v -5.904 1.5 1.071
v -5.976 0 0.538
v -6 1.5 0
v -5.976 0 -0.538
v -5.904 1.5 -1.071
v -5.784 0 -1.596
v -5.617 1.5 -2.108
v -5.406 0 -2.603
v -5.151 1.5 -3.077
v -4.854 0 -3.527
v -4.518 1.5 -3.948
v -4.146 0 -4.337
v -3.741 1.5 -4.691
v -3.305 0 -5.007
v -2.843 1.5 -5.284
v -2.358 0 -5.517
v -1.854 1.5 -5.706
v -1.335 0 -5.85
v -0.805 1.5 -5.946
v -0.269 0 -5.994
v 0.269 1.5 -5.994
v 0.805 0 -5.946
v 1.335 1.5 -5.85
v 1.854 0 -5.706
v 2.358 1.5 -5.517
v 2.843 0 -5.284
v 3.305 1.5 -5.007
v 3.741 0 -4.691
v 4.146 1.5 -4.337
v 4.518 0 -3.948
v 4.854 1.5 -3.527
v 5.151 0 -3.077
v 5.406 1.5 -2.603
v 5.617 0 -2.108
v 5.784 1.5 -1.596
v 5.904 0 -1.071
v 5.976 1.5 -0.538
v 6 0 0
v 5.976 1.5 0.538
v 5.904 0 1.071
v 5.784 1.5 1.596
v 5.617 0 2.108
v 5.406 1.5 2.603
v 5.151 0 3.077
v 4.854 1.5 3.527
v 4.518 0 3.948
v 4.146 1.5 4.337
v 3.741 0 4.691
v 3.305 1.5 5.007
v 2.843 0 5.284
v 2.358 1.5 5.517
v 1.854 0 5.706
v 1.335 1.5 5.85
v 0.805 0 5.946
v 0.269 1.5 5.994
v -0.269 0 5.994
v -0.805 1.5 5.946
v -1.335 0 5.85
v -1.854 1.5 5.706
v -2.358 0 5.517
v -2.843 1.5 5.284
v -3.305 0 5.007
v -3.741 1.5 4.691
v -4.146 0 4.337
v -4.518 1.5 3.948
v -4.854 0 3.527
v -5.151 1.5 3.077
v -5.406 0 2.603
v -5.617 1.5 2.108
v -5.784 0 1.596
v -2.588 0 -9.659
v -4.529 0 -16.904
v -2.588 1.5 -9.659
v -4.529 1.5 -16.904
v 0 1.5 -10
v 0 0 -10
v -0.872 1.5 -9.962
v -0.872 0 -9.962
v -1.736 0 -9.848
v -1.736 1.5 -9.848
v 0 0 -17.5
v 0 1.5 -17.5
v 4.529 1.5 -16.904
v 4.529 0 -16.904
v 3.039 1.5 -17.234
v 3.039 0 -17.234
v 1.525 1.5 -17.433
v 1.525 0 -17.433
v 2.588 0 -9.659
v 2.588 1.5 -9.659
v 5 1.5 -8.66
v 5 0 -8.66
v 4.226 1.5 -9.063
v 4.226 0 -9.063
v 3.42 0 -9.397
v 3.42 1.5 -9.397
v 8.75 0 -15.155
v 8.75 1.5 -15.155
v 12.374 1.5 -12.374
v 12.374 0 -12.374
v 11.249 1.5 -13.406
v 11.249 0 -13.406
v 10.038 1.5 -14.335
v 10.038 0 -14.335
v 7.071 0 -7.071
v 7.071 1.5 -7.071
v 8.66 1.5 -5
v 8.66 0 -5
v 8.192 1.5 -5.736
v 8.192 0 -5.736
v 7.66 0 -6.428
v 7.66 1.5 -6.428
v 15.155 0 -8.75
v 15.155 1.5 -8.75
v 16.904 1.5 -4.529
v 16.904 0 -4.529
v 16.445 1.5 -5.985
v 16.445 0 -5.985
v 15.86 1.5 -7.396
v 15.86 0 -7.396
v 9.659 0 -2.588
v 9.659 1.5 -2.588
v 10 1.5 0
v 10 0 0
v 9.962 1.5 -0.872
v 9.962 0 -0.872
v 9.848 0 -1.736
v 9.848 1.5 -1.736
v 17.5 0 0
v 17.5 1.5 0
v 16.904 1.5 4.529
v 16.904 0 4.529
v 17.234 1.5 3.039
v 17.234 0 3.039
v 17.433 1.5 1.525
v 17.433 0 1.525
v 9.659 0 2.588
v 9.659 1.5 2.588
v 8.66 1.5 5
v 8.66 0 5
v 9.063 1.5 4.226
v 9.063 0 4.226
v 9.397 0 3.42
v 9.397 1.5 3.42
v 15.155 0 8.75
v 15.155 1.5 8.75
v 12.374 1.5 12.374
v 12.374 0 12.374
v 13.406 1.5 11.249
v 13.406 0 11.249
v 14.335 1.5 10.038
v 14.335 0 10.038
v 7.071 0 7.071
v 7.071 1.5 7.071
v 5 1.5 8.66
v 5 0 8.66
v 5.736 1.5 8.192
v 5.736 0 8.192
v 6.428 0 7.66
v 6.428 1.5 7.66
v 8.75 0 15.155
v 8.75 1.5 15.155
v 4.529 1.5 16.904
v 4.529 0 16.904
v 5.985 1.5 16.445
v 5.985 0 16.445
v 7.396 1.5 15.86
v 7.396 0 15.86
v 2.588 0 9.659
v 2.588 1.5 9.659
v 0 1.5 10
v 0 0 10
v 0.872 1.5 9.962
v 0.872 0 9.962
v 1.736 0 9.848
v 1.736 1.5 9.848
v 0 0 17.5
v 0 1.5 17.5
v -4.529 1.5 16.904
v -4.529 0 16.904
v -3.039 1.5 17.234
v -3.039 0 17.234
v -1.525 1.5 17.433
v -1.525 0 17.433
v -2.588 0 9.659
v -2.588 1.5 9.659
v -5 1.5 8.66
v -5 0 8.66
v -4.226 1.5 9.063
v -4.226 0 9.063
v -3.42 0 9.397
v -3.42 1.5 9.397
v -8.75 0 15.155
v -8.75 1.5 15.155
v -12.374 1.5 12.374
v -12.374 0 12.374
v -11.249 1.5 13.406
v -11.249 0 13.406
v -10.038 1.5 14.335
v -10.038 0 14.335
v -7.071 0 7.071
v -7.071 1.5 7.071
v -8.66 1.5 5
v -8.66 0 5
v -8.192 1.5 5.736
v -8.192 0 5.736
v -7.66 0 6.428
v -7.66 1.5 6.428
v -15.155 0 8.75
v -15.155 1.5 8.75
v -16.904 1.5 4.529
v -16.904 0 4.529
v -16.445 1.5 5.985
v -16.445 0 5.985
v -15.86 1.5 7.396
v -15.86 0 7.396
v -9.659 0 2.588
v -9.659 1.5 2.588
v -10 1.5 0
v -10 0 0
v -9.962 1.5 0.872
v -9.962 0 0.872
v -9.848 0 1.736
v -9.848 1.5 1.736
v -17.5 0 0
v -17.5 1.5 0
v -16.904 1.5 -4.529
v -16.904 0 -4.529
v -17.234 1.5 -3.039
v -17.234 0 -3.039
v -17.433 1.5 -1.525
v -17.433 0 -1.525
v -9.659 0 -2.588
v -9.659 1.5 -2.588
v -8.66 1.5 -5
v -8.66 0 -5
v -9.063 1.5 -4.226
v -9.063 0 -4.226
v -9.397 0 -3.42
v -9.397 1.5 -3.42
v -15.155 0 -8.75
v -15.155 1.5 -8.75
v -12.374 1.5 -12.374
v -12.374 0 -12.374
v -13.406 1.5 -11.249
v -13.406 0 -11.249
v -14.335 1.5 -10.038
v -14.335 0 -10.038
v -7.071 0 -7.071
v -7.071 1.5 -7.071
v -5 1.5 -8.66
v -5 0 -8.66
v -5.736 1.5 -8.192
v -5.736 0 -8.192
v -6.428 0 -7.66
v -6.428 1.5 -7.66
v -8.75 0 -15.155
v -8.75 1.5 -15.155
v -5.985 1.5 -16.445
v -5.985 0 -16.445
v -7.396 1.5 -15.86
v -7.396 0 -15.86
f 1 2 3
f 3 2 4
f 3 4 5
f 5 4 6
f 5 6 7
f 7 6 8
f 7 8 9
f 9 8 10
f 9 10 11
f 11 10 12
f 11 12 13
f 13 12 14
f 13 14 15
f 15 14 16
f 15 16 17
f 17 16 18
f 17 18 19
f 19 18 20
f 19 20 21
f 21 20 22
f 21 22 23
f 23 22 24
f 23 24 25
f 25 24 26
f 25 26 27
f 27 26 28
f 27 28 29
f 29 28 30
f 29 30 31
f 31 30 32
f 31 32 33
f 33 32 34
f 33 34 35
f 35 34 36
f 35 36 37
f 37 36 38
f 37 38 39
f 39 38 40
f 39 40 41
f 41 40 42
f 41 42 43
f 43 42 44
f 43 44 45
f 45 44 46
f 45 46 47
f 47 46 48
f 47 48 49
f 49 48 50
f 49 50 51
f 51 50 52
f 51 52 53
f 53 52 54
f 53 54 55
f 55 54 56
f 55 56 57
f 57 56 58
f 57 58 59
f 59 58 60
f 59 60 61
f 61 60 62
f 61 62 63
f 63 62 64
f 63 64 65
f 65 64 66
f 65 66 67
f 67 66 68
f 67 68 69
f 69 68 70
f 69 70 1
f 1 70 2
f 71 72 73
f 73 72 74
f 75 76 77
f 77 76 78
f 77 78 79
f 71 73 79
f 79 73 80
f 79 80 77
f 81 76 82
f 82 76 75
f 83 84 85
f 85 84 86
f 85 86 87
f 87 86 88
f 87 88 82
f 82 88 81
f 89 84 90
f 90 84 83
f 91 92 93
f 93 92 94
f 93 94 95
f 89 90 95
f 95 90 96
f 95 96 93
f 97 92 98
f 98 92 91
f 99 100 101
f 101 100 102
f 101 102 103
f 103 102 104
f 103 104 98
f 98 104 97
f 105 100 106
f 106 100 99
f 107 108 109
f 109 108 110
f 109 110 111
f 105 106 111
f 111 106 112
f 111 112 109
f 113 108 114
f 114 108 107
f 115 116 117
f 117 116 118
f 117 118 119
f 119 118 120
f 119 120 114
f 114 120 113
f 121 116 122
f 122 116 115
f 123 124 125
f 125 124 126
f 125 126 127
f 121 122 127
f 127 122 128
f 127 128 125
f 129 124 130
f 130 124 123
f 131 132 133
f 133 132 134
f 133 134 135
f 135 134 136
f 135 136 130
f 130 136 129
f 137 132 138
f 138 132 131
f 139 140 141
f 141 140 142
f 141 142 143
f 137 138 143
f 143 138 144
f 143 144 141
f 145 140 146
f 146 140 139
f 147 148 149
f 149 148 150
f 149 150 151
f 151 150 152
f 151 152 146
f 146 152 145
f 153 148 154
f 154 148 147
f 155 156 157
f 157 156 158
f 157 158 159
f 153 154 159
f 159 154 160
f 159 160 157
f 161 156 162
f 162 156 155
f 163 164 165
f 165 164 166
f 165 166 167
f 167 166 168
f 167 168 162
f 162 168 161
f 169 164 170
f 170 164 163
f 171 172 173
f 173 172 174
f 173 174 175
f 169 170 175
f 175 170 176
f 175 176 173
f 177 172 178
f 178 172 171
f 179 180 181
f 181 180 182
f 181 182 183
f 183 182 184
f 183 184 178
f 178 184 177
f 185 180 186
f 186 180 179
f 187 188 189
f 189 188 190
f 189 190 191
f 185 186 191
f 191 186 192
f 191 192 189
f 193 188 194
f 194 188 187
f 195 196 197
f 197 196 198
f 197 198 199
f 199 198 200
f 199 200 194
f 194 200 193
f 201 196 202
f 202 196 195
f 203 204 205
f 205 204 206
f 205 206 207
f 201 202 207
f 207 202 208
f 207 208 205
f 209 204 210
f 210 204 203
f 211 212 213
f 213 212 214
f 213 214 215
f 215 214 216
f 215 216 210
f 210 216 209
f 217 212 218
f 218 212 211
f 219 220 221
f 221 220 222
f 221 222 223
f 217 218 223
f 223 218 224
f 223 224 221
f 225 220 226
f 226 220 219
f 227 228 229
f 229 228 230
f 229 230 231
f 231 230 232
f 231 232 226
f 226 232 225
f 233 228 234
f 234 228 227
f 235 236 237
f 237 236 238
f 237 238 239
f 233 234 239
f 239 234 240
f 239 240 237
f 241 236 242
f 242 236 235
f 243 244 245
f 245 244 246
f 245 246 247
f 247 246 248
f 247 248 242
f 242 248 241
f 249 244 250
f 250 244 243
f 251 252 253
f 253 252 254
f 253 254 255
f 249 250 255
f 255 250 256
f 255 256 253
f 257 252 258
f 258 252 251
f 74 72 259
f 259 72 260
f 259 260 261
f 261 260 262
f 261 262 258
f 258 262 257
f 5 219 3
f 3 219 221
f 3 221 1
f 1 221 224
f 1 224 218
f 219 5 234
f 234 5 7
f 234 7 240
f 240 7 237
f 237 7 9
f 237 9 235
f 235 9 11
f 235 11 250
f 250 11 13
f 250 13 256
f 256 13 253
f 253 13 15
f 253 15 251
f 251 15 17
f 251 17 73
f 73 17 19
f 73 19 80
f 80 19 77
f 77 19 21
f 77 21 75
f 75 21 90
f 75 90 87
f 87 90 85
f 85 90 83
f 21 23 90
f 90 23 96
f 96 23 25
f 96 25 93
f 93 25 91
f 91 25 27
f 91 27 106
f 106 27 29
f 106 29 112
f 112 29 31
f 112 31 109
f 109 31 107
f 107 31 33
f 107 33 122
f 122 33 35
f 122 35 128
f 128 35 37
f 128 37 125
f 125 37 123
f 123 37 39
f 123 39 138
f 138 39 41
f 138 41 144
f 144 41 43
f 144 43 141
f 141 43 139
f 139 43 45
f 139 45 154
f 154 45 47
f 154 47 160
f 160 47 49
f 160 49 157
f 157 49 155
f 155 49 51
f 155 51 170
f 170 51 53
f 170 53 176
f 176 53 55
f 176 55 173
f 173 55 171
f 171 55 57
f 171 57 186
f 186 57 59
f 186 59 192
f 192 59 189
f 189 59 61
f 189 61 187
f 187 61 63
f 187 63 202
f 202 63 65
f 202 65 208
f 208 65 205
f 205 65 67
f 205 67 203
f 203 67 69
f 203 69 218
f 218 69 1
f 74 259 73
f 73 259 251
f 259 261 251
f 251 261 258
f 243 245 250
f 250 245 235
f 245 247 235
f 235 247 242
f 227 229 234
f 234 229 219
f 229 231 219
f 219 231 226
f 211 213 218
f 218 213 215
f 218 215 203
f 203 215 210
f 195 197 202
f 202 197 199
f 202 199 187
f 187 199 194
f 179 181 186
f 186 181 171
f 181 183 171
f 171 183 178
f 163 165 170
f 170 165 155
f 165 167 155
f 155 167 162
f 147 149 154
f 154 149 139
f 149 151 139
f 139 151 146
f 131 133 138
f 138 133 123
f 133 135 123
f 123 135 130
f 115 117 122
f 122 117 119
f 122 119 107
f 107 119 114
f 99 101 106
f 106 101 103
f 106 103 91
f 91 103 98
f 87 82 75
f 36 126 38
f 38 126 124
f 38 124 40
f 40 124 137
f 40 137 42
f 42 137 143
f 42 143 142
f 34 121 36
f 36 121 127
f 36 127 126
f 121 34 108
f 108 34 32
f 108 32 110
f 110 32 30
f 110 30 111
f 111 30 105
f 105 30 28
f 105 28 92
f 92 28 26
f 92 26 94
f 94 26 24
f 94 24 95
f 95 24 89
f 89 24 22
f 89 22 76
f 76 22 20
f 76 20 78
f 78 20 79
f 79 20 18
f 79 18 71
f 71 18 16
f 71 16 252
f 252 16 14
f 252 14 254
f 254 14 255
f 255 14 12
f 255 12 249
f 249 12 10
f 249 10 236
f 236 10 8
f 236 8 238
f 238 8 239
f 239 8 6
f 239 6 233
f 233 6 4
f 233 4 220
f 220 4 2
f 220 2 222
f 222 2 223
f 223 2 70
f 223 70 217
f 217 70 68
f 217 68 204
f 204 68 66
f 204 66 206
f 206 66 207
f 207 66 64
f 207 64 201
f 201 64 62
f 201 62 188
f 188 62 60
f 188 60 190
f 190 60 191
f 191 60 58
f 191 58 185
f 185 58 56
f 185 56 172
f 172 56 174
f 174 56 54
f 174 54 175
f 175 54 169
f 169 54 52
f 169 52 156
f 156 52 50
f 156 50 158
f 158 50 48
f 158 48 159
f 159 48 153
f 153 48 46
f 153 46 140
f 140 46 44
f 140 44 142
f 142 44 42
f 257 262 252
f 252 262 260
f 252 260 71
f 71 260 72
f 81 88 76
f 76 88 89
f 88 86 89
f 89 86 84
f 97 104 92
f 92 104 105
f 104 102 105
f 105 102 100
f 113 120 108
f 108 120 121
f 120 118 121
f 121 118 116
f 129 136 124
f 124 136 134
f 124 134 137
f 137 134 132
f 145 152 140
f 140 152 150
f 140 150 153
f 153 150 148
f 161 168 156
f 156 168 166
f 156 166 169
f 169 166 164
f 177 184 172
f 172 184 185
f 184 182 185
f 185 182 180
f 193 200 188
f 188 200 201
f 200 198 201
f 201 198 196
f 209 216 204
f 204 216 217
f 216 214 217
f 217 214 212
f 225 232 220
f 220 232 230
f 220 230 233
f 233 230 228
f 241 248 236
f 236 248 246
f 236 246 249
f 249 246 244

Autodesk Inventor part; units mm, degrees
ref_plane "YZ Plane" through (0, 0, 0) normal (1, 0, 0) x (0, 1, 0)
ref_plane "XZ Plane" through (0, 0, 0) normal (0, 1, 0) x (-1, 0, 0)
ref_plane "XY Plane" through (0, 0, 0) normal (0, 0, 1) x (1, 0, 0)
sketch "Boceto1" plane through (0, 0, 0) normal (0, 1, 0) x (-1, 0, 0)
  line L0 (0, -10) -> (0, -17.5)
  arc A0 (0, -10) -> (2.5882, -9.6593) centre (0, 0) ccw
  line L1 (2.5882, -9.6593) -> (4.5293, -16.9037)
  line L2 (5, -8.6603) -> (8.75, -15.1554)
  arc A1 (5, -8.6603) -> (7.0711, -7.0711) centre (0, 0) ccw
  line L3 (7.0711, -7.0711) -> (12.3744, -12.3744)
  line L4 (8.6603, -5) -> (15.1554, -8.75)
  arc A2 (8.6603, -5) -> (9.6593, -2.5882) centre (0, 0) ccw
  line L5 (9.6593, -2.5882) -> (16.9037, -4.5293)
  line L6 (10, 0) -> (17.5, 0)
  arc A3 (10, 0) -> (9.6593, 2.5882) centre (0, 0) ccw
  line L7 (9.6593, 2.5882) -> (16.9037, 4.5293)
  line L8 (8.6603, 5) -> (15.1554, 8.75)
  arc A4 (8.6603, 5) -> (7.0711, 7.0711) centre (0, 0) ccw
  line L9 (7.0711, 7.0711) -> (12.3744, 12.3744)
  line L10 (5, 8.6603) -> (8.75, 15.1554)
  arc A5 (5, 8.6603) -> (2.5882, 9.6593) centre (0, 0) ccw
  line L11 (2.5882, 9.6593) -> (4.5293, 16.9037)
  line L12 (0, 10) -> (0, 17.5)
  arc A6 (0, 10) -> (-2.5882, 9.6593) centre (0, 0) ccw
  line L13 (-2.5882, 9.6593) -> (-4.5293, 16.9037)
  line L14 (-5, 8.6603) -> (-8.75, 15.1554)
  arc A7 (-5, 8.6603) -> (-7.0711, 7.0711) centre (0, 0) ccw
  line L15 (-7.0711, 7.0711) -> (-12.3744, 12.3744)
  line L16 (-8.6603, 5) -> (-15.1554, 8.75)
  arc A8 (-8.6603, 5) -> (-9.6593, 2.5882) centre (0, 0) ccw
  line L17 (-9.6593, 2.5882) -> (-16.9037, 4.5293)
  line L18 (-10, 0) -> (-17.5, 0)
  arc A9 (-10, 0) -> (-9.6593, -2.5882) centre (0, 0) ccw
  line L19 (-9.6593, -2.5882) -> (-16.9037, -4.5293)
  line L20 (-8.6603, -5) -> (-15.1554, -8.75)
  arc A10 (-8.6603, -5) -> (-7.0711, -7.0711) centre (0, 0) ccw
  line L21 (-7.0711, -7.0711) -> (-12.3744, -12.3744)
  line L22 (-5, -8.6603) -> (-8.75, -15.1554)
  arc A11 (-5, -8.6603) -> (-2.5882, -9.6593) centre (0, 0) ccw
  line L23 (-2.5882, -9.6593) -> (-4.5293, -16.9037)
  arc A12 (12.3744, 12.3744) -> (8.75, 15.1554) centre (0, 0) ccw
  arc A13 (16.9037, 4.5293) -> (15.1554, 8.75) centre (0, 0) ccw
  arc A14 (16.9037, -4.5293) -> (17.5, 0) centre (0, 0) ccw
  arc A15 (12.3744, -12.3744) -> (15.1554, -8.75) centre (0, 0) ccw
  arc A16 (4.5293, -16.9037) -> (8.75, -15.1554) centre (0, 0) ccw
  arc A17 (-4.5293, -16.9037) -> (0, -17.5) centre (0, 0) ccw
  arc A18 (-12.3744, -12.3744) -> (-8.75, -15.1554) centre (0, 0) ccw
  arc A19 (-16.9037, -4.5293) -> (-15.1554, -8.75) centre (0, 0) ccw
  arc A20 (-16.9037, 4.5293) -> (-17.5, 0) centre (0, 0) ccw
  arc A21 (-12.3744, 12.3744) -> (-15.1554, 8.75) centre (0, 0) ccw
  arc A22 (4.5293, 16.9037) -> (0, 17.5) centre (0, 0) ccw
  arc A23 (-4.5293, 16.9037) -> (-8.75, 15.1554) centre (0, 0) ccw
  line L24 (5.1962, 3) -> (7.1962, 3)
  line L25 (7.1962, 3) -> (7.1962, -3)
  line L26 (7.1962, -3) -> (5.1962, -3)
  line L27 (-5.1962, -3) -> (-7.1962, -3)
  line L28 (-7.1962, -3) -> (-7.1962, 3)
  line L29 (-7.1962, 3) -> (-5.1962, 3)
  arc A24 (5.1962, 3) -> (-5.1962, 3) centre (0, 0) ccw
  arc A25 (-5.1962, -3) -> (5.1962, -3) centre (0, 0) ccw
  dimension "d6" = 360
  dimension "d11" = 2
  dimension "d12" = 6
  dimension "d13" = 2
  dimension "d14" = 6
extrude "Extrusión1" add sketch "Boceto1" along normal blind 1.5 contours L0 A17 L23 A11 L22 A18 L21 A10 L20 A19 L19 A9 L18 A20 L17 A8 L16 A21 L15 A7 L14 A23 L13 A6 L12 A22 L11 A5 L10 A12 L9 A4 L8 A13 L7 A3 L6 A14 L5 A2 L4 A15 L3 A1 L2 A16 L1 A0 | L24 L25 L26 A25 L27 L28 L29 A24
sketch "Boceto2" plane through (0, 0, 0) normal (0, -1, 0) x (1, 0, 0)
  arc A0 (-9.6593, -2.5882) -> (-8.6603, -5) centre (0, 0) ccw projected
hole "Agujero1" at (0, 0, 0) direction (0, 1, 0) diameter 12 depth 8 tip angle 118
properties part number "Encoder2"
